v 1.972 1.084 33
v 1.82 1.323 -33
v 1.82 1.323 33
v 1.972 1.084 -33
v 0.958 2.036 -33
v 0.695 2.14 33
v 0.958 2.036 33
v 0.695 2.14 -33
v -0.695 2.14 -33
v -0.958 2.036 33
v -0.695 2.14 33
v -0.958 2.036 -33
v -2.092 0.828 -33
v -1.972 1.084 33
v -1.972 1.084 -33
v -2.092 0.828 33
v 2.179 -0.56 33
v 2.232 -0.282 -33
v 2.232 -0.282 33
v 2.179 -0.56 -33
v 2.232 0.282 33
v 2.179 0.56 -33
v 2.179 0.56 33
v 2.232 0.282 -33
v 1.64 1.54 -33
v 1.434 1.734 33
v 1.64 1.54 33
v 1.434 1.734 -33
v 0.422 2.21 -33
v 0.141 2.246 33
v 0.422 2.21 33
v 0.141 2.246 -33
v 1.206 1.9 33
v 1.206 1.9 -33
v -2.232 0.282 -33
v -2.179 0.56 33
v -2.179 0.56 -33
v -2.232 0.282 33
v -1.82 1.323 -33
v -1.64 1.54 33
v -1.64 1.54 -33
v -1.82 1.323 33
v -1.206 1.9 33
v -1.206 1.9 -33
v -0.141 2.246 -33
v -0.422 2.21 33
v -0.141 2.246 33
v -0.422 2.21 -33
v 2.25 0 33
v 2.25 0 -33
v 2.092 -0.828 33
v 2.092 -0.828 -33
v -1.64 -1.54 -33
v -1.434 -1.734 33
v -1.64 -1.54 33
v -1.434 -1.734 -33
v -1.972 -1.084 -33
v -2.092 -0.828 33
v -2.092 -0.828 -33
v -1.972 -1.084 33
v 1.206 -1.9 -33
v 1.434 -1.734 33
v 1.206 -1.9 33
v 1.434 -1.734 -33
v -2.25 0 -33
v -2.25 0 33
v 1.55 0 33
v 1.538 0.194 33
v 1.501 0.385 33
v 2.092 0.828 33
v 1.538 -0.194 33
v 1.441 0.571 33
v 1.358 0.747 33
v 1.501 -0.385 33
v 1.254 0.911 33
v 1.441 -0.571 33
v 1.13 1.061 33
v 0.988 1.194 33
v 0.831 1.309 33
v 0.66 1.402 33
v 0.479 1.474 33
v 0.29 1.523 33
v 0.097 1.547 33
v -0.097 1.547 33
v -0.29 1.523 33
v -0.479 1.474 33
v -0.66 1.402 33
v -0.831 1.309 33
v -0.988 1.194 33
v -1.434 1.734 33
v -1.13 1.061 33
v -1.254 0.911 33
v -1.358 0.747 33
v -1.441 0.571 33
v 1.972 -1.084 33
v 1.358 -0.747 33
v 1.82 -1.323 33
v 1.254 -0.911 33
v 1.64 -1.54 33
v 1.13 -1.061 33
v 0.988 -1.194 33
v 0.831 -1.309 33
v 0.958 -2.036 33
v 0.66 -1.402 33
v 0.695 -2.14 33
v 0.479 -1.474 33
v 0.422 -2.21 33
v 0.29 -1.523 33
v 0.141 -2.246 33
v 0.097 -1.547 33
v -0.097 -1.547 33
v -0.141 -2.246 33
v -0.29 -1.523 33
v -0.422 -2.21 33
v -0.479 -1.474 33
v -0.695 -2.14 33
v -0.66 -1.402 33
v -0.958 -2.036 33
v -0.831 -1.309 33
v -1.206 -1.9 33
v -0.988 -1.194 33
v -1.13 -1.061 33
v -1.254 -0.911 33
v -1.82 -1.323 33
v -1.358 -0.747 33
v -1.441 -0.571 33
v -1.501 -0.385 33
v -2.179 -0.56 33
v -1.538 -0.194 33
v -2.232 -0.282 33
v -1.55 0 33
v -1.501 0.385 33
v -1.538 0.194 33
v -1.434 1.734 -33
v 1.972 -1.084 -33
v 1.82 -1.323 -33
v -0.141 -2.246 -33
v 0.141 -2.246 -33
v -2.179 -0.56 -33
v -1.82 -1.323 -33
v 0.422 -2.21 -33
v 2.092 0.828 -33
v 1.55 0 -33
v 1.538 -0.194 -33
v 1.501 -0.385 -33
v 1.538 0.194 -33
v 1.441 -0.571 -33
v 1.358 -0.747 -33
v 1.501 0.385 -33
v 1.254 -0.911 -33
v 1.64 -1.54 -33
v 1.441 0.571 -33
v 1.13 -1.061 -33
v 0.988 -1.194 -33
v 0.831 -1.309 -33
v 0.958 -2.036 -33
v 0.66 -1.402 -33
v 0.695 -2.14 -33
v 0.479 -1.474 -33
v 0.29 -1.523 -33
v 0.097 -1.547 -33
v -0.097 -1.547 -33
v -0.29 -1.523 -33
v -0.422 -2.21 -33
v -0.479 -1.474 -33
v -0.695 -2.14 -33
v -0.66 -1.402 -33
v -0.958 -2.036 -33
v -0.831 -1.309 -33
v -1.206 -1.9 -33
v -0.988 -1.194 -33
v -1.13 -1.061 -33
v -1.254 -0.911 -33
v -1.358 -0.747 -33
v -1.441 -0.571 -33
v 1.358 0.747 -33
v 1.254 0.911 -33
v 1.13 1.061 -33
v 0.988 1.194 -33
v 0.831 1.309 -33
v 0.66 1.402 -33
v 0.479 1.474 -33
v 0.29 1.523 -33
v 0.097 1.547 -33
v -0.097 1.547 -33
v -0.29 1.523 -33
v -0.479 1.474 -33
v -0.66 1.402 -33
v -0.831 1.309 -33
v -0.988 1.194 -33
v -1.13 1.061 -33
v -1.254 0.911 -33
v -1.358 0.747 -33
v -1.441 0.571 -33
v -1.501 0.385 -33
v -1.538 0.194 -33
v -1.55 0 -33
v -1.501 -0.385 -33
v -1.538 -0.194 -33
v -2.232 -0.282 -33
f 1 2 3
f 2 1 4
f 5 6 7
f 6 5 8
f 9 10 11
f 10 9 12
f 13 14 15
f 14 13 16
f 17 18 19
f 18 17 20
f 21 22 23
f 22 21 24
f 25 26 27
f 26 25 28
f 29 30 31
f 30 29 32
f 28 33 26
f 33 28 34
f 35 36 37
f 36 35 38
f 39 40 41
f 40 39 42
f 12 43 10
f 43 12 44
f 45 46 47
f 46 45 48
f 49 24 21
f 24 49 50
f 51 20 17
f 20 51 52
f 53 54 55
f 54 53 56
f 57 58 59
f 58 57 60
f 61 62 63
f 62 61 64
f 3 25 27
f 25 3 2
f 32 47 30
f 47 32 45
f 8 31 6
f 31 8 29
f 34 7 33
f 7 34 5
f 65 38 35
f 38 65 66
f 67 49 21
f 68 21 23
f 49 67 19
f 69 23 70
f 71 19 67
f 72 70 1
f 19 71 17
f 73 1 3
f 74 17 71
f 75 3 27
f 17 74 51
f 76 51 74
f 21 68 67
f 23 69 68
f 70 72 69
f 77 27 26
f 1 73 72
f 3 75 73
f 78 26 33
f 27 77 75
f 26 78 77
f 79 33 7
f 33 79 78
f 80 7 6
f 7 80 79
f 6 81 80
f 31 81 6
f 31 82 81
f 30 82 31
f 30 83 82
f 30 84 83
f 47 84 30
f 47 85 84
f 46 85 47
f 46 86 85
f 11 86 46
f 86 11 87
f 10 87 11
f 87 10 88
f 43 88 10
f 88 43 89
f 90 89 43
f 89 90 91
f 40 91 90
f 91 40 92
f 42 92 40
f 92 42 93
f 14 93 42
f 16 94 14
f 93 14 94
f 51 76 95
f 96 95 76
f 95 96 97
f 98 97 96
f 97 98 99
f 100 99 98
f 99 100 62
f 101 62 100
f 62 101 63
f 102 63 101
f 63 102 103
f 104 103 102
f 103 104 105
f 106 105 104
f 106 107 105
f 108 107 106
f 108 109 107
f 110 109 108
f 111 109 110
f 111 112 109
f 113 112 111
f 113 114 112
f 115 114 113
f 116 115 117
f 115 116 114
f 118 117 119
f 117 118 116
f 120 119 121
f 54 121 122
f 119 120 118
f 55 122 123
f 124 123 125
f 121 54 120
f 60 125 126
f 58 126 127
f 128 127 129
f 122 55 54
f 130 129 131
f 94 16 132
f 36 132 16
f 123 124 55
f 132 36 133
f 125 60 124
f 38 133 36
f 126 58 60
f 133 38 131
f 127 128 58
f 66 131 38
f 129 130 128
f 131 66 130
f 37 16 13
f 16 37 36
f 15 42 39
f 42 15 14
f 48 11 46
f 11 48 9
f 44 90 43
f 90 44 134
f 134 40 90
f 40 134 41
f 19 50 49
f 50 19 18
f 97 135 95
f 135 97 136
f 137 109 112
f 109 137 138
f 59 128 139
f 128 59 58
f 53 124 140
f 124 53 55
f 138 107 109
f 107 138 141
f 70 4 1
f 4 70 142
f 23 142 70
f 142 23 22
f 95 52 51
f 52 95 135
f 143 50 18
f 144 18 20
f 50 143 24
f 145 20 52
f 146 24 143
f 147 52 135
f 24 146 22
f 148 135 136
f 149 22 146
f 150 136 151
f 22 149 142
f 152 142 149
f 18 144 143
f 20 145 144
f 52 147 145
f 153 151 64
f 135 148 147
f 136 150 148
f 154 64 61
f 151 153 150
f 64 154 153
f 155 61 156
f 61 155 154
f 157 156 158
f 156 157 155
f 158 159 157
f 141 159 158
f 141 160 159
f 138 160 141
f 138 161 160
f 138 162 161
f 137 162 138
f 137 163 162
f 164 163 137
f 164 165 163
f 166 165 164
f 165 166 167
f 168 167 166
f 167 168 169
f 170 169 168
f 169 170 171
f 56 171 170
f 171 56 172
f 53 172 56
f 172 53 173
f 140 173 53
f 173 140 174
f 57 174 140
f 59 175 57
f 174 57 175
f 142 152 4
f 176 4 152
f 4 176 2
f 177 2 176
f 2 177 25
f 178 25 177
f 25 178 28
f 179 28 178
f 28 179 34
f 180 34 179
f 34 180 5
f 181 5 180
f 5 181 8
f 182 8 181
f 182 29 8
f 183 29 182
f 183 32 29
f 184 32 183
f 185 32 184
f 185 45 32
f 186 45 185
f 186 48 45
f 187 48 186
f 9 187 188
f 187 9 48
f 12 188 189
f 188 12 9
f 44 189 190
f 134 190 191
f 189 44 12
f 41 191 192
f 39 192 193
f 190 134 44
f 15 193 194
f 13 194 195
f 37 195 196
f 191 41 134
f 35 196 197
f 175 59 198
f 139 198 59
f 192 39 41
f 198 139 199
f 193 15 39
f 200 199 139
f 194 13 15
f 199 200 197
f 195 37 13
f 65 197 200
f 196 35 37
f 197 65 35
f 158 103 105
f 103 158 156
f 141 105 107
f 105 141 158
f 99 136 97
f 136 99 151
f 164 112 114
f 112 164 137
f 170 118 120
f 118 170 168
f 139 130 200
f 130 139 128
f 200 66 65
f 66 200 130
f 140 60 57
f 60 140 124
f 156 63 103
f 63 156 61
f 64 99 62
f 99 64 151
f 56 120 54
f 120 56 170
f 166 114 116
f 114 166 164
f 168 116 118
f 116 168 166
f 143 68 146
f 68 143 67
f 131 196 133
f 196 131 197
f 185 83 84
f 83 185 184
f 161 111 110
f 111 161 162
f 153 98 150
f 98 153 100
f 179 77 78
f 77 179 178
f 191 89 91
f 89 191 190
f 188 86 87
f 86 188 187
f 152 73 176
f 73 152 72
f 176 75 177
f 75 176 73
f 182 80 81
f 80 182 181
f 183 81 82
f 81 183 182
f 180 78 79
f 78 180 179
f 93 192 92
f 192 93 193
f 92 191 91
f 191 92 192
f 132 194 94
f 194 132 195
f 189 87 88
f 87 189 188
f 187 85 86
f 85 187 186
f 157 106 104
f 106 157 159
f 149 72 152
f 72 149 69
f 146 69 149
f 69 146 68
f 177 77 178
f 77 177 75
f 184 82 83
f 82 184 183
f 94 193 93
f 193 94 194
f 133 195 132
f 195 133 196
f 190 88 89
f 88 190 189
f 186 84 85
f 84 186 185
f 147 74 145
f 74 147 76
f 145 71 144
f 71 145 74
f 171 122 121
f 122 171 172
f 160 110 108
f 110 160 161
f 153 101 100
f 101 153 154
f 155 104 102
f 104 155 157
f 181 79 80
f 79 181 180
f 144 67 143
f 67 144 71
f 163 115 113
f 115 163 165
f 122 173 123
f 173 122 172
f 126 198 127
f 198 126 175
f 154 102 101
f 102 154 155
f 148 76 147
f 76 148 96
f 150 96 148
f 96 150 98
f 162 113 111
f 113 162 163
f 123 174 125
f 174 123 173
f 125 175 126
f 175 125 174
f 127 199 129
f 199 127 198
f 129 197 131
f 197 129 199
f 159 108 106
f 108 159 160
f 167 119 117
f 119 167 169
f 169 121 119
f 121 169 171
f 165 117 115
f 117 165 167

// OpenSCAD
$fn = 50;


difference() {
	union() {
		translate(v = [0, 0, -33.0000000000]) {
			cylinder(h = 66, r = 2.2500000000);
		}
	}
	union() {
		translate(v = [0, 0, -100.0000000000]) {
			cylinder(h = 200, r = 1.5500000000);
		}
	}
}
